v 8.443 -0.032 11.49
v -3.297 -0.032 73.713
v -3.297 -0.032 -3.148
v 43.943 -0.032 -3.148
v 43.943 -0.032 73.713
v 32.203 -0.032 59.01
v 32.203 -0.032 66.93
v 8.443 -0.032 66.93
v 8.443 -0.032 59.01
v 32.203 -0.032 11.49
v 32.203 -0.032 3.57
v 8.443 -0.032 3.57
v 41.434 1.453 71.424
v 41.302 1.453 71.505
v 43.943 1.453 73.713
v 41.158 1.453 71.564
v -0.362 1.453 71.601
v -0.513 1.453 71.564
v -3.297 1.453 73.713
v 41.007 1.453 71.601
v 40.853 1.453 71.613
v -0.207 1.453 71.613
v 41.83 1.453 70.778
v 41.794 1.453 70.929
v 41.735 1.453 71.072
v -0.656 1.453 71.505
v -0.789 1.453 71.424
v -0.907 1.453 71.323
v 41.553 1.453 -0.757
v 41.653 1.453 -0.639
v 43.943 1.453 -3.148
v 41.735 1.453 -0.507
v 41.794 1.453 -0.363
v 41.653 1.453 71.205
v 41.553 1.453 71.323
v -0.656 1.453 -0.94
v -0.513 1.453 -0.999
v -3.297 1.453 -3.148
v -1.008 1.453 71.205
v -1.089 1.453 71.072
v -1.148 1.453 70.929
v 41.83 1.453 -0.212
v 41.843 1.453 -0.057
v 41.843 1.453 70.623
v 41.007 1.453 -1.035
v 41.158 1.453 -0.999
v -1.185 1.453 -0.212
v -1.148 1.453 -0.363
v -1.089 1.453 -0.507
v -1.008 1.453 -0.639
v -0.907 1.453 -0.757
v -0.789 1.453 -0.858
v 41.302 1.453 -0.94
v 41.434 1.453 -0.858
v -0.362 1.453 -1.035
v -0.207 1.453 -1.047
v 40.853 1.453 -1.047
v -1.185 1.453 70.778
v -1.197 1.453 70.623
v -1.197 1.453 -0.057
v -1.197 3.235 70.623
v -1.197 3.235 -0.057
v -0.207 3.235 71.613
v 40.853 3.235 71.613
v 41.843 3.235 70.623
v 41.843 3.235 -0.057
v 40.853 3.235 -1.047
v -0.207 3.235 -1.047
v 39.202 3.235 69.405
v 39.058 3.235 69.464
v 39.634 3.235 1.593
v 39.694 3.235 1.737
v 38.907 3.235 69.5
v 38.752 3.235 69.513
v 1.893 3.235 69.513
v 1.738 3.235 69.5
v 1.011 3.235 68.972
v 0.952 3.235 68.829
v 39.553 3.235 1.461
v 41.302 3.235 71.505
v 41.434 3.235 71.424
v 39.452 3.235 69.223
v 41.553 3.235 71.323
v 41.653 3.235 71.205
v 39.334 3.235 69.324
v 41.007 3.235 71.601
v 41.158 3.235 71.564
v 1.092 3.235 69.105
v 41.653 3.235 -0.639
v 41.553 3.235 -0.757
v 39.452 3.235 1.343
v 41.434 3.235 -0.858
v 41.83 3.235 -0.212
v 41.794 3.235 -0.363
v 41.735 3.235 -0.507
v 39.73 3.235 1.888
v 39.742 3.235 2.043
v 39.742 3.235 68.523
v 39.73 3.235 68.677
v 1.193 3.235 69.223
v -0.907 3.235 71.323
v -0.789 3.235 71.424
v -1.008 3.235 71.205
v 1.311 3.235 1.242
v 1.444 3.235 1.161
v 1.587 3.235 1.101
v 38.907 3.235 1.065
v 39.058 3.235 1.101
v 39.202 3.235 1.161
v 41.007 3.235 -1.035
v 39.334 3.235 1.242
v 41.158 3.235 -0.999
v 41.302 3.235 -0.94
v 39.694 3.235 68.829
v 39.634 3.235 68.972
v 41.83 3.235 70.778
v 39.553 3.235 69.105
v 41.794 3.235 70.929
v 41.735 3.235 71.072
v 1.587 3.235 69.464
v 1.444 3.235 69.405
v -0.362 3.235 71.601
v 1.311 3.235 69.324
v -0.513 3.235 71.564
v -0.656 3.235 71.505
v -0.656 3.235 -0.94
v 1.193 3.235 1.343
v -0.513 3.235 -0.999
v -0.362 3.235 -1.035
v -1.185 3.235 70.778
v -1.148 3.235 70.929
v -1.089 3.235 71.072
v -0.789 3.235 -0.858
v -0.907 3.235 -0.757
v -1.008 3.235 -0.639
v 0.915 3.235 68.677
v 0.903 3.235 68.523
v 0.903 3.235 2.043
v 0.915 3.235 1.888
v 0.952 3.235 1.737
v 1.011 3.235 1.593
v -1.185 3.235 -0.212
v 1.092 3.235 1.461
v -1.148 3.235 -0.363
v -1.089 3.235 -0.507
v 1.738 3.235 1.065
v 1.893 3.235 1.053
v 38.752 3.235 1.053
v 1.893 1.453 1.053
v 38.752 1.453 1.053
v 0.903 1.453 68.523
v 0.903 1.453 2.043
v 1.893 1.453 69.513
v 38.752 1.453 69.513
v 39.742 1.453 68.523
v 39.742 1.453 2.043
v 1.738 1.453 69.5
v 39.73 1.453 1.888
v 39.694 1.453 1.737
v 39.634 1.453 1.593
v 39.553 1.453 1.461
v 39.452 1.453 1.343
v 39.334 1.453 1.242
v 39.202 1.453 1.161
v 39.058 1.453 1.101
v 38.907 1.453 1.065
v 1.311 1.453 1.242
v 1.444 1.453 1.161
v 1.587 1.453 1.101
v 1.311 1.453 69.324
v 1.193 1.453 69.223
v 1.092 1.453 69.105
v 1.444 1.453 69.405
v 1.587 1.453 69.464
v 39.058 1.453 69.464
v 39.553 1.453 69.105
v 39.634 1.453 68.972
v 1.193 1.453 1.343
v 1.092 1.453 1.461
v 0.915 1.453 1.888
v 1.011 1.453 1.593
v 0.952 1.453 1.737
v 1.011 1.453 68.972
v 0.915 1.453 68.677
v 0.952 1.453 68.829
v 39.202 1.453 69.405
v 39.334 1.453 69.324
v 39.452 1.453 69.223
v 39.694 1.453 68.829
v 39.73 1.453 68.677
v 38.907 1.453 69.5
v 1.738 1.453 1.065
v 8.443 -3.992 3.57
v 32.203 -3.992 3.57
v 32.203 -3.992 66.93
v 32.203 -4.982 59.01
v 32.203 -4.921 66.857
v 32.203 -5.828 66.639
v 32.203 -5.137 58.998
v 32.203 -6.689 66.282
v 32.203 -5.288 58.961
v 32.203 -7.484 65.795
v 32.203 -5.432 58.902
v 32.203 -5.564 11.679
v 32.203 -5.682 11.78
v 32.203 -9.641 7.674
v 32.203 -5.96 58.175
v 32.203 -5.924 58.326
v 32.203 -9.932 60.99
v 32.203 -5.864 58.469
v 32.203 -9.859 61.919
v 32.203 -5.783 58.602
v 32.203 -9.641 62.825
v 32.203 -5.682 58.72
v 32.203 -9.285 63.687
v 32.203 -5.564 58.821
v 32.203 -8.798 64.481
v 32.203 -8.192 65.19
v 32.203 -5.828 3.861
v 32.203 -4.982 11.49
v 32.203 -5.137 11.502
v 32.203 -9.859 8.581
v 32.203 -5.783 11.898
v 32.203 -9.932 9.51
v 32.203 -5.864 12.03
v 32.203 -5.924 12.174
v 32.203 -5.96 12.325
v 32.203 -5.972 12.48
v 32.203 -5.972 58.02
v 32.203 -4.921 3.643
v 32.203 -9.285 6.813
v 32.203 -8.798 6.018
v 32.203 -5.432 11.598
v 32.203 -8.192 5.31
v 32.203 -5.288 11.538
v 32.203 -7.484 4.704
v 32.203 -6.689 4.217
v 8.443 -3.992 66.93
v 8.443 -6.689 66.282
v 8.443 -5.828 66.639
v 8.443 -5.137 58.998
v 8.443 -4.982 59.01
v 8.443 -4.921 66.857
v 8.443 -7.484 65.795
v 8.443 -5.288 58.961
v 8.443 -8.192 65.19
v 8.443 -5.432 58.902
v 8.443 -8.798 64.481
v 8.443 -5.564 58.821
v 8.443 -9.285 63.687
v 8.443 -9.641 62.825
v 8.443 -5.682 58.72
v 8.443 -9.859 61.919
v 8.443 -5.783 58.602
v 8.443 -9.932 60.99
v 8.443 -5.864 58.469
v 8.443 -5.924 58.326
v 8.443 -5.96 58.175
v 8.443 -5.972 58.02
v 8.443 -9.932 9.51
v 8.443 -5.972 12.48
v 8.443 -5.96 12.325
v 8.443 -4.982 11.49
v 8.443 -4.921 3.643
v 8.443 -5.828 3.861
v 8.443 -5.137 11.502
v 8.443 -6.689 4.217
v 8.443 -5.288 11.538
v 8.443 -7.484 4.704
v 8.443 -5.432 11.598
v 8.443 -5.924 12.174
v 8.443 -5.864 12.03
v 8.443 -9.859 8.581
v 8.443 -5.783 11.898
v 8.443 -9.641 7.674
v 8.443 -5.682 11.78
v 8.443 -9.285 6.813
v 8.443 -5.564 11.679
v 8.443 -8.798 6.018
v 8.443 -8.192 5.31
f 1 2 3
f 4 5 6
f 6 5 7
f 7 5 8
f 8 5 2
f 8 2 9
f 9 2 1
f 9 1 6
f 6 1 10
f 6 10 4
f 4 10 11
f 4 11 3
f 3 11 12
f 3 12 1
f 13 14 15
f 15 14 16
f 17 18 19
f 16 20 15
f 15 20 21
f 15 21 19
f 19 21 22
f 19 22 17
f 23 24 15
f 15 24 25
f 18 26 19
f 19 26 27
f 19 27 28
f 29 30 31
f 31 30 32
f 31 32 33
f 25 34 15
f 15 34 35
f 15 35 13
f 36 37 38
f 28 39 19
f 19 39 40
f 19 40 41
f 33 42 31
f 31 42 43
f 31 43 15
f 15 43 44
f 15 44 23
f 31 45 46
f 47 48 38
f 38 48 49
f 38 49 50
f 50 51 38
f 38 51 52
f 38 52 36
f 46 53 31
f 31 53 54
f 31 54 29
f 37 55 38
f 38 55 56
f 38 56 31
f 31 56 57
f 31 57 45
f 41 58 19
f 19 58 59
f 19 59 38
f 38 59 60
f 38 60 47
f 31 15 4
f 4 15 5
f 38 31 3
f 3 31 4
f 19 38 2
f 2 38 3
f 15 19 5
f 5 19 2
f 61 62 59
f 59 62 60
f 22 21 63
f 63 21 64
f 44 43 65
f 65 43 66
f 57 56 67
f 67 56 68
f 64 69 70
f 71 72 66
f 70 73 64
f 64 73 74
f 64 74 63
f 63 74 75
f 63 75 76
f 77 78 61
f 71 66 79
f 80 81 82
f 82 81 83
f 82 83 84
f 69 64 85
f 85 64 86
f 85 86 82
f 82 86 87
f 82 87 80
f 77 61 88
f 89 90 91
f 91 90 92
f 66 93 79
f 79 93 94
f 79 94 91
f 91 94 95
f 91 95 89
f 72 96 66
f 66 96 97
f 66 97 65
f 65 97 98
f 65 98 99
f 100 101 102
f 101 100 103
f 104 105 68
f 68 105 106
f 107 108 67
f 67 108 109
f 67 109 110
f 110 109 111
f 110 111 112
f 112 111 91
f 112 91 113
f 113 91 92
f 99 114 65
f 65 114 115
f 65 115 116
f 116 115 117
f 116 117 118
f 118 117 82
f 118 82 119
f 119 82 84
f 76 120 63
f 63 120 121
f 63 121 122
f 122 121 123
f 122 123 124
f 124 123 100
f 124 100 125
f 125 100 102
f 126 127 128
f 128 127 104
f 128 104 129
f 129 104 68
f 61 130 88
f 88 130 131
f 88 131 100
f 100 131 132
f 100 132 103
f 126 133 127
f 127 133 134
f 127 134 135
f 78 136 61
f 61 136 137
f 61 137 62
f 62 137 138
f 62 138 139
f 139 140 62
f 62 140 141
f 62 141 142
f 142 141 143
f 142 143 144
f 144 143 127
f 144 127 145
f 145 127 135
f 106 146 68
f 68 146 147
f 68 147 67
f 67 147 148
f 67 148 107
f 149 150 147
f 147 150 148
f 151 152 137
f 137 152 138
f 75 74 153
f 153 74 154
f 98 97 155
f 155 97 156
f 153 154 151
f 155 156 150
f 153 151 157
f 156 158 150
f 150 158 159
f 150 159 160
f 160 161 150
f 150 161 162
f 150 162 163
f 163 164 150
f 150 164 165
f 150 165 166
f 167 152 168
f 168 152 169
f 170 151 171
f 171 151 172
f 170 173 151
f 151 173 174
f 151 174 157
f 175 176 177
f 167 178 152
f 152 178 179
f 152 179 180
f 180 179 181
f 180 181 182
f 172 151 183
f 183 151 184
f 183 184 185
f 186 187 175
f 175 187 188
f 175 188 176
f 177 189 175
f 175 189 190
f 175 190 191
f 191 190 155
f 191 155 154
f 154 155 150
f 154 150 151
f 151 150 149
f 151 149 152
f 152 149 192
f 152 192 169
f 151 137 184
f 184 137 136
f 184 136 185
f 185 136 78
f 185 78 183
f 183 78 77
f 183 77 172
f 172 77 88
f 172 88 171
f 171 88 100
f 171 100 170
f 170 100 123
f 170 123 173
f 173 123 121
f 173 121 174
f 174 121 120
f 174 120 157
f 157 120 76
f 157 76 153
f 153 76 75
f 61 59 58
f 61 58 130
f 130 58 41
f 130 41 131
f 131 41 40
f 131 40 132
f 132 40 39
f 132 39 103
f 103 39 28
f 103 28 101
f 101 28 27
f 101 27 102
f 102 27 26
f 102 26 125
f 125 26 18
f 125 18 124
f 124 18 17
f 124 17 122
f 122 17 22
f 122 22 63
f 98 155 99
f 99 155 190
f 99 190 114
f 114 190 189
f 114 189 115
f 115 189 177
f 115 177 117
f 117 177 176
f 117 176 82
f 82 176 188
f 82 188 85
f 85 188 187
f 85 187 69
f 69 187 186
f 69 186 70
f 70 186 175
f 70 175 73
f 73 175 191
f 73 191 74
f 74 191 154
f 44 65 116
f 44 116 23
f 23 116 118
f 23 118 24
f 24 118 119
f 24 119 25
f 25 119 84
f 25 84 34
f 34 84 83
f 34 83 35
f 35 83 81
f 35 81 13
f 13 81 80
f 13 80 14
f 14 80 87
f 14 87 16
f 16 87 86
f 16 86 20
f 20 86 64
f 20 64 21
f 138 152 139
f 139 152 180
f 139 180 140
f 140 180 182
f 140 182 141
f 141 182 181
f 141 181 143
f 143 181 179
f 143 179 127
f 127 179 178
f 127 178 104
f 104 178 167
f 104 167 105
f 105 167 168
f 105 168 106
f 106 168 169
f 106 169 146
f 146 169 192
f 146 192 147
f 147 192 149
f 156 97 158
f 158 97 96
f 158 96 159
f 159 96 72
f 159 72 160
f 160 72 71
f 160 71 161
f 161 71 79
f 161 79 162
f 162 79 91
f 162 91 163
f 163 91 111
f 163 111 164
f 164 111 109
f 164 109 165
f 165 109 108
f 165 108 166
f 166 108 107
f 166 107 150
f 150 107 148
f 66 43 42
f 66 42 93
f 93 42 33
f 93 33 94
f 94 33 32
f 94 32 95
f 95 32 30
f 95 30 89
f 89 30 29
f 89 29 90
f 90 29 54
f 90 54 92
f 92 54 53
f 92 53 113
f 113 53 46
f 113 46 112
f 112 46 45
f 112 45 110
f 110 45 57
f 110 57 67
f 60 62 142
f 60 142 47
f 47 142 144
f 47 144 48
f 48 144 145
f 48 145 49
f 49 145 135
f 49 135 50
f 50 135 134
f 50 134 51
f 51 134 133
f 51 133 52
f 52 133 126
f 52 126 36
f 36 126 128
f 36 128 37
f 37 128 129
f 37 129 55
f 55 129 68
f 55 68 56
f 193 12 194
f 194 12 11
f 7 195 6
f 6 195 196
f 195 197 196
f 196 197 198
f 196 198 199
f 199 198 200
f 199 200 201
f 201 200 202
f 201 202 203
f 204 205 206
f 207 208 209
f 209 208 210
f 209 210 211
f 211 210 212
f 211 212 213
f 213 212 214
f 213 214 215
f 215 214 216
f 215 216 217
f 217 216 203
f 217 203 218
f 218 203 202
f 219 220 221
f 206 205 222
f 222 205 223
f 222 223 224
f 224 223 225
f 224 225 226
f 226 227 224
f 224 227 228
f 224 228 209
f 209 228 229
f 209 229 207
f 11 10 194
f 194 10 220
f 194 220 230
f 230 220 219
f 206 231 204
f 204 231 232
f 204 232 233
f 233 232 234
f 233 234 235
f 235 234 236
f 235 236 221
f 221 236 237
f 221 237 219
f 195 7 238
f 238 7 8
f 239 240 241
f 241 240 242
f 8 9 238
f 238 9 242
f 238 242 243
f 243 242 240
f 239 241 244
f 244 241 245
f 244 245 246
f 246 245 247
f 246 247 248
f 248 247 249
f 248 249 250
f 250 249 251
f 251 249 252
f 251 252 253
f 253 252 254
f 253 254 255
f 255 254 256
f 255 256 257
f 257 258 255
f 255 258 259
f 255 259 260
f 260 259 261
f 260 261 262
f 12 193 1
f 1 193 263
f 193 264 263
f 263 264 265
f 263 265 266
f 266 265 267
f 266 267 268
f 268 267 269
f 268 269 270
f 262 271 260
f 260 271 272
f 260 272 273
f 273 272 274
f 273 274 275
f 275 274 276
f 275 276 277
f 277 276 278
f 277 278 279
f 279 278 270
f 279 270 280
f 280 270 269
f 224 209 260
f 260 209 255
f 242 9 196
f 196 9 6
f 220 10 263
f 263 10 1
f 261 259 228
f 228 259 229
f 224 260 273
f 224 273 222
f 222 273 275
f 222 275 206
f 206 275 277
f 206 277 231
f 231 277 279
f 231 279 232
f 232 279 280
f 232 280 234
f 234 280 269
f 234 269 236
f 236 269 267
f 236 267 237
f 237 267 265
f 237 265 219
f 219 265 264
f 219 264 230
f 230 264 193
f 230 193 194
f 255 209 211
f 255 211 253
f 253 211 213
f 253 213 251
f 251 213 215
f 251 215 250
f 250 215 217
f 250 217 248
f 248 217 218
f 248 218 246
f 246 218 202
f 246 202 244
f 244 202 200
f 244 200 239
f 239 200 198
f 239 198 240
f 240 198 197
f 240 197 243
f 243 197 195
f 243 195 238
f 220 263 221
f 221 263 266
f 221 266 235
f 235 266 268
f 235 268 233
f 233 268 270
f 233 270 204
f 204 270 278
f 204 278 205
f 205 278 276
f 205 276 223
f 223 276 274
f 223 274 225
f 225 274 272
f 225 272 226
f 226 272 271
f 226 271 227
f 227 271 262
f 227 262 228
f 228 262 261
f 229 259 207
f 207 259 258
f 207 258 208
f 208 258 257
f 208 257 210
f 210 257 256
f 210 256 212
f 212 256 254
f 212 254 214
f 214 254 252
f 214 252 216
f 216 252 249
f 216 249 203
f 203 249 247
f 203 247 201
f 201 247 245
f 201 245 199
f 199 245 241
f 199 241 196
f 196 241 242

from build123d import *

# Parameters (mm, degrees)
PCB_DIMENSIONS_W    = 47.716732244
PCB_DIMENSIONS_H    = 77.636732244
BOSS_EXTRUDE3_DEPTH = 1.5
SKETCH5_W           = 43.474091557
SKETCH5_H           = 73.394091557
SKETCH5_W_2         = 39.23145087
SKETCH5_H_2         = 69.15145087
BOSS_EXTRUDE4_DEPTH = 1.8
FILLET1_R           = 1
SKETCH6_W           = 12
SKETCH6_H           = 31.966906412
SKETCH6_H_2         = 32.033093588
BOSS_EXTRUDE5_DEPTH = 10
SKETCH7_W           = 48
SKETCH7_H           = 6
CUT_EXTRUDE1_DEPTH  = 24
FILLET2_R           = 6
FILLET3_R           = 1
SCALE1_SCALE        = 0.99


with BuildPart() as part:
    # PCB Dimensions → Boss-Extrude3 (new body)
    with BuildSketch(Plane(origin=(0, 0, 0), x_dir=(1, 0, 0), z_dir=(0, 1, 0))):
        with Locations((20.322832216, -35.282832216)):
            Rectangle(PCB_DIMENSIONS_W, PCB_DIMENSIONS_H)
    extrude(amount=BOSS_EXTRUDE3_DEPTH)

    # Sketch5 → Boss-Extrude4 (add)
    with BuildSketch(Plane(origin=(0, 1.5, 0), x_dir=(1, 0, 0), z_dir=(0, 1, 0))):
        with Locations((20.322832217, -35.282832217)):
            Rectangle(SKETCH5_W, SKETCH5_H)
        with Locations((20.322832216, -35.282832216)):
            Rectangle(SKETCH5_W_2, SKETCH5_H_2, mode=Mode.SUBTRACT)
    extrude(amount=BOSS_EXTRUDE4_DEPTH)

    # Fillet1
    fillet1_edges = [part.edges().sort_by_distance(p)[0] for p in [
        (-1.414213562, 2.4, -1.414213562),
        (-1.414213562, 2.4, 71.979877995),
        (42.059877995, 2.4, 71.979877995),
        (42.059877995, 2.4, -1.414213562),
        (0.707106781, 2.4, 0.707106781),
        (0.707106781, 2.4, 69.858557651),
        (39.938557651, 2.4, 69.858557651),
        (39.938557651, 2.4, 0.707106781),
    ]]
    fillet(fillet1_edges, radius=FILLET1_R)

    # Sketch6 → Boss-Extrude5 (add)
    with BuildSketch(Plane.XZ):
        with Locations((14.322832216, 51.266285422)):
            Rectangle(SKETCH6_W, SKETCH6_H)
        with Locations((26.322832216, 51.266285422)):
            Rectangle(SKETCH6_W, SKETCH6_H)
        with Locations((14.322832216, 19.266285422)):
            Rectangle(SKETCH6_W, SKETCH6_H_2)
        with Locations((26.322832216, 19.266285422)):
            Rectangle(SKETCH6_W, SKETCH6_H_2)
    extrude(amount=BOSS_EXTRUDE5_DEPTH)

    # Sketch7 → Cut-Extrude1 (cut)
    with BuildSketch(Plane(origin=(32.322832216, 0, 0), x_dir=(0, 0, -1), z_dir=(1, 0, 0))):
        with Locations((-35.249738628, -3)):
            Rectangle(SKETCH7_W, SKETCH7_H)
    extrude(amount=-CUT_EXTRUDE1_DEPTH, mode=Mode.SUBTRACT)

    # Fillet2
    fillet2_edges = [part.edges().sort_by_distance(p)[0] for p in [
        (20.322832216, -10, 67.249738628),
        (20.322832216, -10, 3.249738628),
    ]]
    fillet(fillet2_edges, radius=FILLET2_R)

    # Fillet3
    fillet3_edges = [part.edges().sort_by_distance(p)[0] for p in [
        (20.322832216, -6, 59.249738628),
        (20.322832216, -6, 11.249738628),
    ]]
    fillet(fillet3_edges, radius=FILLET3_R)


with BuildPart() as part_1:
    # Scale1: scaled about (20.322832216, -3.218350849, 35.264379677)
    add(part.part.scale(SCALE1_SCALE).moved(Location((0.203228322, -0.032183508, 0.352643797))))


solid = part_1.part
